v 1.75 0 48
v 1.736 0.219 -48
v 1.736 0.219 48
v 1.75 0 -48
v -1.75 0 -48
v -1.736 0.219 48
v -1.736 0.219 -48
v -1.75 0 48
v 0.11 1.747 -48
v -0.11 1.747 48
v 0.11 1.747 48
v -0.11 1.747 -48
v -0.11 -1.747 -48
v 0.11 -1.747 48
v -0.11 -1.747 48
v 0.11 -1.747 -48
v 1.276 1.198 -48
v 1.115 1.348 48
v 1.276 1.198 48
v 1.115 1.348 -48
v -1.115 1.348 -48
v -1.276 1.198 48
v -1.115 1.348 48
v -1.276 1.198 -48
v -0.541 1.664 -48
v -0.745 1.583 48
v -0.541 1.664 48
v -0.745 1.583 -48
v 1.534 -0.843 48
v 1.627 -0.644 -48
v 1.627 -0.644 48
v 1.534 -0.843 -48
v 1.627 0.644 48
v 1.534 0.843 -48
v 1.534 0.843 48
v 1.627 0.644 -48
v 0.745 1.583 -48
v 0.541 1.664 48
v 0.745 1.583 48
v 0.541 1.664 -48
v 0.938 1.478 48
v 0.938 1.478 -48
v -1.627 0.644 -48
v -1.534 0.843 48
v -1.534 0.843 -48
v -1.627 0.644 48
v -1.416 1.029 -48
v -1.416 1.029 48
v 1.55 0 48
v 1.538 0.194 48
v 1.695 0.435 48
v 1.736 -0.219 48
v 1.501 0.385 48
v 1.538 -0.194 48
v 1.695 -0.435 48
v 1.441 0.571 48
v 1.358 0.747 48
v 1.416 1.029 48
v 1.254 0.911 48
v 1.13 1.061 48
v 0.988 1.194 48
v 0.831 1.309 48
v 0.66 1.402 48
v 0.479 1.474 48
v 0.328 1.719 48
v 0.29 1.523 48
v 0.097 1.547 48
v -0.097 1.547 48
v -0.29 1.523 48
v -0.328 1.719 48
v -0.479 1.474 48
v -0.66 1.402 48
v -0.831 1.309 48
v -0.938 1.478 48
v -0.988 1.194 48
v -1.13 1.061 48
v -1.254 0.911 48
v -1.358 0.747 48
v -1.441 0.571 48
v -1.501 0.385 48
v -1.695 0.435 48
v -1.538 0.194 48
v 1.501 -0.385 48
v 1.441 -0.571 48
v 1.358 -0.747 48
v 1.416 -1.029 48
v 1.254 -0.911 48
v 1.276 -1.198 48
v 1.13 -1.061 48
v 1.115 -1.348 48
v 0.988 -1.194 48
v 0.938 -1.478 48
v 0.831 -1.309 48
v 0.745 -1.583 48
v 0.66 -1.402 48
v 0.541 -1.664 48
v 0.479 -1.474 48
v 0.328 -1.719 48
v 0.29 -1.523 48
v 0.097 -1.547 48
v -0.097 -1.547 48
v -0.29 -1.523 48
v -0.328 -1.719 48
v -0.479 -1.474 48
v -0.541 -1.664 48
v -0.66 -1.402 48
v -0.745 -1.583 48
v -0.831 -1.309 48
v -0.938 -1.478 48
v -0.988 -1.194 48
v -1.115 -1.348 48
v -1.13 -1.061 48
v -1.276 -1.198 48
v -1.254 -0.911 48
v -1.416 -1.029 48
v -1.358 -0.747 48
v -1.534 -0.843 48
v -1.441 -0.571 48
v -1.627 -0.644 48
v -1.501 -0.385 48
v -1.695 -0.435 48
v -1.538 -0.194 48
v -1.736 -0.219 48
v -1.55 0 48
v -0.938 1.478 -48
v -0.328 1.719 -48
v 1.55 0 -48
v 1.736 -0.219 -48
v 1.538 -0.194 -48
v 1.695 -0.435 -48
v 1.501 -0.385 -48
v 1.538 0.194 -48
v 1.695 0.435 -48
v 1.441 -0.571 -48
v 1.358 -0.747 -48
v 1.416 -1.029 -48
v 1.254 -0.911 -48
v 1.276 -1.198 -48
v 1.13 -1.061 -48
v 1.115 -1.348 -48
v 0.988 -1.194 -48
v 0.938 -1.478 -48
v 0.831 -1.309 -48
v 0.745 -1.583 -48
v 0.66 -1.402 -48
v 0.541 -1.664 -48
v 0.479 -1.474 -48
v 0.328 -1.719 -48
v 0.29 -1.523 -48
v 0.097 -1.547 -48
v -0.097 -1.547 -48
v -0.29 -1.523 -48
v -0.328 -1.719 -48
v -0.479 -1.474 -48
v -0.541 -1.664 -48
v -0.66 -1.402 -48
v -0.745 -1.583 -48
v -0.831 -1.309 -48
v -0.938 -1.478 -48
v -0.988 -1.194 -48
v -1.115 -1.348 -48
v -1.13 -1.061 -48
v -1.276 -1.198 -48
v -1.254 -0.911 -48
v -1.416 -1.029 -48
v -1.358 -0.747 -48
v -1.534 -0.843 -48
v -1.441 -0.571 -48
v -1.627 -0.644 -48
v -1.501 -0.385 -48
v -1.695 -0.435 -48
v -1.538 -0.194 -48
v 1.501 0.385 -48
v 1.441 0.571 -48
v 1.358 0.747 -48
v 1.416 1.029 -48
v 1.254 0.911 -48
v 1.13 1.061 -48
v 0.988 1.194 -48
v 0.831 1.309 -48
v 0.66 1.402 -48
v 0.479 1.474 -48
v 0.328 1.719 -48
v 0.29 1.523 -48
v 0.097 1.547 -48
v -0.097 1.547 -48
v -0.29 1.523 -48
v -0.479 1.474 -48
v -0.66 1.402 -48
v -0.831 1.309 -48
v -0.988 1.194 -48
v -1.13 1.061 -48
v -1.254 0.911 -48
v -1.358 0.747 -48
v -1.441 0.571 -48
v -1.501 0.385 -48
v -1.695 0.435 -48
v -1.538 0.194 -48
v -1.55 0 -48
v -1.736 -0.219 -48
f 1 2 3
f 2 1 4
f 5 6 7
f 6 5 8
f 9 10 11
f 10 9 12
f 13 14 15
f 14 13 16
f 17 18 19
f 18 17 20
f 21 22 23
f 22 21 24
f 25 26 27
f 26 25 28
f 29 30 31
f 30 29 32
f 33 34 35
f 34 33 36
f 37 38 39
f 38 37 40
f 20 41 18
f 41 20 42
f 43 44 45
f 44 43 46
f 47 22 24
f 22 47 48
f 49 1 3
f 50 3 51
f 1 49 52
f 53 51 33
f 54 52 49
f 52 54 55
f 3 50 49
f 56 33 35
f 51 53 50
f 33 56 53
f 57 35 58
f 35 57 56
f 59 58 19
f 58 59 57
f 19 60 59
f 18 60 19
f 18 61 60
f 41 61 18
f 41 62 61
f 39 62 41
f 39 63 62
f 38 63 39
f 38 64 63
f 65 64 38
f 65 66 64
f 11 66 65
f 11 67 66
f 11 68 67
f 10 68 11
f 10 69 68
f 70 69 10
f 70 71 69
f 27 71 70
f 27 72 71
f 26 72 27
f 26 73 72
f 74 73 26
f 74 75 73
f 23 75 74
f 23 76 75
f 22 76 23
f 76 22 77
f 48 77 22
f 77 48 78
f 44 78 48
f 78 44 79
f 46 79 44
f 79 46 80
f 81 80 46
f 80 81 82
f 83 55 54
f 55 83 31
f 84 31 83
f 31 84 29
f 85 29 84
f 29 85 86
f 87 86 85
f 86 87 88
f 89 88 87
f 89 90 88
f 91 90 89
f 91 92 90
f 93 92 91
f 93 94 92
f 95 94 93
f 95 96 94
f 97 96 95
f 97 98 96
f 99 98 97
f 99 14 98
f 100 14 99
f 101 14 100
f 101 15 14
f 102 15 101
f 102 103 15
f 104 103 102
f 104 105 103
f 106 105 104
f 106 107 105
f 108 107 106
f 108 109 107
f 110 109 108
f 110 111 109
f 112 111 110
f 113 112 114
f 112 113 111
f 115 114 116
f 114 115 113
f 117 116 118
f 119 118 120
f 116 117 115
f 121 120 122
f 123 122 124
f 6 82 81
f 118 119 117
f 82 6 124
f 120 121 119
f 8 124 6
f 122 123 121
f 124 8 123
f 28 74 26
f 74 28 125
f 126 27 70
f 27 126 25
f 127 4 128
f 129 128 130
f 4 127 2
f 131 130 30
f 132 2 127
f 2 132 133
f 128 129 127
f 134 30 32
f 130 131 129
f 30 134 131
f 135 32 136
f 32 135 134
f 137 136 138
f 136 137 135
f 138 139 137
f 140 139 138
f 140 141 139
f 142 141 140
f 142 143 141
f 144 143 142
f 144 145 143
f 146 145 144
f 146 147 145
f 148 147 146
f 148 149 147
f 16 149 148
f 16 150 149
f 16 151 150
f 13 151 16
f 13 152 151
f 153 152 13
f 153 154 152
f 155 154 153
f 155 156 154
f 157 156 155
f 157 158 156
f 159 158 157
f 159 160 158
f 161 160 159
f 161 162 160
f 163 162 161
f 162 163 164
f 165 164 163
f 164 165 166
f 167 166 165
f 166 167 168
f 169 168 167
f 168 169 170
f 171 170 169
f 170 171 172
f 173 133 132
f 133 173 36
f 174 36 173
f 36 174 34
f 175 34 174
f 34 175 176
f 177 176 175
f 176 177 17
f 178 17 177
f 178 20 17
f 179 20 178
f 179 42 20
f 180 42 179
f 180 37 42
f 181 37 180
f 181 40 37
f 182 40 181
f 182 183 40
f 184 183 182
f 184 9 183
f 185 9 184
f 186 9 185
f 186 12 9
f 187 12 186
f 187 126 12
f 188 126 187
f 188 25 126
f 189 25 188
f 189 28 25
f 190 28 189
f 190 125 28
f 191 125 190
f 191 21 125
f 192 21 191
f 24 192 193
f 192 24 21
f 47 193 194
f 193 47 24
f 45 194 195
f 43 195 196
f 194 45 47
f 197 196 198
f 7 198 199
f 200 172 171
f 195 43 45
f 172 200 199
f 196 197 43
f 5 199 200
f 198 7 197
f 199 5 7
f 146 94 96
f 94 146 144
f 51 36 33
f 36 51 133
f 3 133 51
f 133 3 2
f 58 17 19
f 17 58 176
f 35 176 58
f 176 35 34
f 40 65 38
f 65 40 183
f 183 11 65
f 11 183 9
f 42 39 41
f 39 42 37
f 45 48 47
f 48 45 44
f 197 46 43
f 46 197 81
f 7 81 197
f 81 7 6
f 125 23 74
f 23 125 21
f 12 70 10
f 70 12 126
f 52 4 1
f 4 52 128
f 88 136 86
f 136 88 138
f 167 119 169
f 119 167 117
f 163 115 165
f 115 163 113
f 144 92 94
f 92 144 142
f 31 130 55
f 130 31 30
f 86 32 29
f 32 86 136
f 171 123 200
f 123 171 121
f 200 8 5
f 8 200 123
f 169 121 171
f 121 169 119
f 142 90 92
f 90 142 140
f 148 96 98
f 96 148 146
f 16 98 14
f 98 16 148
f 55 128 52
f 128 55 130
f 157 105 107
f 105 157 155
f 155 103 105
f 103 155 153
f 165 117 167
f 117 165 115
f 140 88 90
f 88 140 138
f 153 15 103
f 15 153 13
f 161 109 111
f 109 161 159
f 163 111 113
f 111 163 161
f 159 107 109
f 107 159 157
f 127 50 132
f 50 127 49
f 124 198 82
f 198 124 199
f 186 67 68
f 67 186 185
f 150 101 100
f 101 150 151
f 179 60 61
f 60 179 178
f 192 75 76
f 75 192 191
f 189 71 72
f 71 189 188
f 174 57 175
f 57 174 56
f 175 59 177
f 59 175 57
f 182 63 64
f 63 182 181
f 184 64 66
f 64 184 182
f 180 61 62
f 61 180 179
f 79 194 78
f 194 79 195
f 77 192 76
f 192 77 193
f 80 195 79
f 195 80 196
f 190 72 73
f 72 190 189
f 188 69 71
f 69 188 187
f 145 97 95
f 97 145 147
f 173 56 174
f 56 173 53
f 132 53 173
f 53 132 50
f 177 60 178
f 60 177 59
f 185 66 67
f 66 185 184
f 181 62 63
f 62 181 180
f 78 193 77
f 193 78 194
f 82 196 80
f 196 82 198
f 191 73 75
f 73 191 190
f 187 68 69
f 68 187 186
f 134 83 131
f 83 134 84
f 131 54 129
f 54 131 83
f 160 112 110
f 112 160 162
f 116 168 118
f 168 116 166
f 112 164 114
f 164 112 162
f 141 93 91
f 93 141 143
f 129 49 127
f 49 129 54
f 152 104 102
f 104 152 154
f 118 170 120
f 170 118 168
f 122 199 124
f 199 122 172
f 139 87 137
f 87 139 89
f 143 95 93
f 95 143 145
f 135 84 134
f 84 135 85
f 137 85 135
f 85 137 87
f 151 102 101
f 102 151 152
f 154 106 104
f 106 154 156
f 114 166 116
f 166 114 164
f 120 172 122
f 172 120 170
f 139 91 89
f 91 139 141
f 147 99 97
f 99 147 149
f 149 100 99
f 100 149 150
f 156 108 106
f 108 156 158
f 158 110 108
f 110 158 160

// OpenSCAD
$fn = 50;


difference() {
	union() {
		translate(v = [0, 0, -48.0000000000]) {
			cylinder(h = 96, r = 1.7500000000);
		}
	}
	union() {
		translate(v = [0, 0, -100.0000000000]) {
			cylinder(h = 200, r = 1.5500000000);
		}
	}
}
